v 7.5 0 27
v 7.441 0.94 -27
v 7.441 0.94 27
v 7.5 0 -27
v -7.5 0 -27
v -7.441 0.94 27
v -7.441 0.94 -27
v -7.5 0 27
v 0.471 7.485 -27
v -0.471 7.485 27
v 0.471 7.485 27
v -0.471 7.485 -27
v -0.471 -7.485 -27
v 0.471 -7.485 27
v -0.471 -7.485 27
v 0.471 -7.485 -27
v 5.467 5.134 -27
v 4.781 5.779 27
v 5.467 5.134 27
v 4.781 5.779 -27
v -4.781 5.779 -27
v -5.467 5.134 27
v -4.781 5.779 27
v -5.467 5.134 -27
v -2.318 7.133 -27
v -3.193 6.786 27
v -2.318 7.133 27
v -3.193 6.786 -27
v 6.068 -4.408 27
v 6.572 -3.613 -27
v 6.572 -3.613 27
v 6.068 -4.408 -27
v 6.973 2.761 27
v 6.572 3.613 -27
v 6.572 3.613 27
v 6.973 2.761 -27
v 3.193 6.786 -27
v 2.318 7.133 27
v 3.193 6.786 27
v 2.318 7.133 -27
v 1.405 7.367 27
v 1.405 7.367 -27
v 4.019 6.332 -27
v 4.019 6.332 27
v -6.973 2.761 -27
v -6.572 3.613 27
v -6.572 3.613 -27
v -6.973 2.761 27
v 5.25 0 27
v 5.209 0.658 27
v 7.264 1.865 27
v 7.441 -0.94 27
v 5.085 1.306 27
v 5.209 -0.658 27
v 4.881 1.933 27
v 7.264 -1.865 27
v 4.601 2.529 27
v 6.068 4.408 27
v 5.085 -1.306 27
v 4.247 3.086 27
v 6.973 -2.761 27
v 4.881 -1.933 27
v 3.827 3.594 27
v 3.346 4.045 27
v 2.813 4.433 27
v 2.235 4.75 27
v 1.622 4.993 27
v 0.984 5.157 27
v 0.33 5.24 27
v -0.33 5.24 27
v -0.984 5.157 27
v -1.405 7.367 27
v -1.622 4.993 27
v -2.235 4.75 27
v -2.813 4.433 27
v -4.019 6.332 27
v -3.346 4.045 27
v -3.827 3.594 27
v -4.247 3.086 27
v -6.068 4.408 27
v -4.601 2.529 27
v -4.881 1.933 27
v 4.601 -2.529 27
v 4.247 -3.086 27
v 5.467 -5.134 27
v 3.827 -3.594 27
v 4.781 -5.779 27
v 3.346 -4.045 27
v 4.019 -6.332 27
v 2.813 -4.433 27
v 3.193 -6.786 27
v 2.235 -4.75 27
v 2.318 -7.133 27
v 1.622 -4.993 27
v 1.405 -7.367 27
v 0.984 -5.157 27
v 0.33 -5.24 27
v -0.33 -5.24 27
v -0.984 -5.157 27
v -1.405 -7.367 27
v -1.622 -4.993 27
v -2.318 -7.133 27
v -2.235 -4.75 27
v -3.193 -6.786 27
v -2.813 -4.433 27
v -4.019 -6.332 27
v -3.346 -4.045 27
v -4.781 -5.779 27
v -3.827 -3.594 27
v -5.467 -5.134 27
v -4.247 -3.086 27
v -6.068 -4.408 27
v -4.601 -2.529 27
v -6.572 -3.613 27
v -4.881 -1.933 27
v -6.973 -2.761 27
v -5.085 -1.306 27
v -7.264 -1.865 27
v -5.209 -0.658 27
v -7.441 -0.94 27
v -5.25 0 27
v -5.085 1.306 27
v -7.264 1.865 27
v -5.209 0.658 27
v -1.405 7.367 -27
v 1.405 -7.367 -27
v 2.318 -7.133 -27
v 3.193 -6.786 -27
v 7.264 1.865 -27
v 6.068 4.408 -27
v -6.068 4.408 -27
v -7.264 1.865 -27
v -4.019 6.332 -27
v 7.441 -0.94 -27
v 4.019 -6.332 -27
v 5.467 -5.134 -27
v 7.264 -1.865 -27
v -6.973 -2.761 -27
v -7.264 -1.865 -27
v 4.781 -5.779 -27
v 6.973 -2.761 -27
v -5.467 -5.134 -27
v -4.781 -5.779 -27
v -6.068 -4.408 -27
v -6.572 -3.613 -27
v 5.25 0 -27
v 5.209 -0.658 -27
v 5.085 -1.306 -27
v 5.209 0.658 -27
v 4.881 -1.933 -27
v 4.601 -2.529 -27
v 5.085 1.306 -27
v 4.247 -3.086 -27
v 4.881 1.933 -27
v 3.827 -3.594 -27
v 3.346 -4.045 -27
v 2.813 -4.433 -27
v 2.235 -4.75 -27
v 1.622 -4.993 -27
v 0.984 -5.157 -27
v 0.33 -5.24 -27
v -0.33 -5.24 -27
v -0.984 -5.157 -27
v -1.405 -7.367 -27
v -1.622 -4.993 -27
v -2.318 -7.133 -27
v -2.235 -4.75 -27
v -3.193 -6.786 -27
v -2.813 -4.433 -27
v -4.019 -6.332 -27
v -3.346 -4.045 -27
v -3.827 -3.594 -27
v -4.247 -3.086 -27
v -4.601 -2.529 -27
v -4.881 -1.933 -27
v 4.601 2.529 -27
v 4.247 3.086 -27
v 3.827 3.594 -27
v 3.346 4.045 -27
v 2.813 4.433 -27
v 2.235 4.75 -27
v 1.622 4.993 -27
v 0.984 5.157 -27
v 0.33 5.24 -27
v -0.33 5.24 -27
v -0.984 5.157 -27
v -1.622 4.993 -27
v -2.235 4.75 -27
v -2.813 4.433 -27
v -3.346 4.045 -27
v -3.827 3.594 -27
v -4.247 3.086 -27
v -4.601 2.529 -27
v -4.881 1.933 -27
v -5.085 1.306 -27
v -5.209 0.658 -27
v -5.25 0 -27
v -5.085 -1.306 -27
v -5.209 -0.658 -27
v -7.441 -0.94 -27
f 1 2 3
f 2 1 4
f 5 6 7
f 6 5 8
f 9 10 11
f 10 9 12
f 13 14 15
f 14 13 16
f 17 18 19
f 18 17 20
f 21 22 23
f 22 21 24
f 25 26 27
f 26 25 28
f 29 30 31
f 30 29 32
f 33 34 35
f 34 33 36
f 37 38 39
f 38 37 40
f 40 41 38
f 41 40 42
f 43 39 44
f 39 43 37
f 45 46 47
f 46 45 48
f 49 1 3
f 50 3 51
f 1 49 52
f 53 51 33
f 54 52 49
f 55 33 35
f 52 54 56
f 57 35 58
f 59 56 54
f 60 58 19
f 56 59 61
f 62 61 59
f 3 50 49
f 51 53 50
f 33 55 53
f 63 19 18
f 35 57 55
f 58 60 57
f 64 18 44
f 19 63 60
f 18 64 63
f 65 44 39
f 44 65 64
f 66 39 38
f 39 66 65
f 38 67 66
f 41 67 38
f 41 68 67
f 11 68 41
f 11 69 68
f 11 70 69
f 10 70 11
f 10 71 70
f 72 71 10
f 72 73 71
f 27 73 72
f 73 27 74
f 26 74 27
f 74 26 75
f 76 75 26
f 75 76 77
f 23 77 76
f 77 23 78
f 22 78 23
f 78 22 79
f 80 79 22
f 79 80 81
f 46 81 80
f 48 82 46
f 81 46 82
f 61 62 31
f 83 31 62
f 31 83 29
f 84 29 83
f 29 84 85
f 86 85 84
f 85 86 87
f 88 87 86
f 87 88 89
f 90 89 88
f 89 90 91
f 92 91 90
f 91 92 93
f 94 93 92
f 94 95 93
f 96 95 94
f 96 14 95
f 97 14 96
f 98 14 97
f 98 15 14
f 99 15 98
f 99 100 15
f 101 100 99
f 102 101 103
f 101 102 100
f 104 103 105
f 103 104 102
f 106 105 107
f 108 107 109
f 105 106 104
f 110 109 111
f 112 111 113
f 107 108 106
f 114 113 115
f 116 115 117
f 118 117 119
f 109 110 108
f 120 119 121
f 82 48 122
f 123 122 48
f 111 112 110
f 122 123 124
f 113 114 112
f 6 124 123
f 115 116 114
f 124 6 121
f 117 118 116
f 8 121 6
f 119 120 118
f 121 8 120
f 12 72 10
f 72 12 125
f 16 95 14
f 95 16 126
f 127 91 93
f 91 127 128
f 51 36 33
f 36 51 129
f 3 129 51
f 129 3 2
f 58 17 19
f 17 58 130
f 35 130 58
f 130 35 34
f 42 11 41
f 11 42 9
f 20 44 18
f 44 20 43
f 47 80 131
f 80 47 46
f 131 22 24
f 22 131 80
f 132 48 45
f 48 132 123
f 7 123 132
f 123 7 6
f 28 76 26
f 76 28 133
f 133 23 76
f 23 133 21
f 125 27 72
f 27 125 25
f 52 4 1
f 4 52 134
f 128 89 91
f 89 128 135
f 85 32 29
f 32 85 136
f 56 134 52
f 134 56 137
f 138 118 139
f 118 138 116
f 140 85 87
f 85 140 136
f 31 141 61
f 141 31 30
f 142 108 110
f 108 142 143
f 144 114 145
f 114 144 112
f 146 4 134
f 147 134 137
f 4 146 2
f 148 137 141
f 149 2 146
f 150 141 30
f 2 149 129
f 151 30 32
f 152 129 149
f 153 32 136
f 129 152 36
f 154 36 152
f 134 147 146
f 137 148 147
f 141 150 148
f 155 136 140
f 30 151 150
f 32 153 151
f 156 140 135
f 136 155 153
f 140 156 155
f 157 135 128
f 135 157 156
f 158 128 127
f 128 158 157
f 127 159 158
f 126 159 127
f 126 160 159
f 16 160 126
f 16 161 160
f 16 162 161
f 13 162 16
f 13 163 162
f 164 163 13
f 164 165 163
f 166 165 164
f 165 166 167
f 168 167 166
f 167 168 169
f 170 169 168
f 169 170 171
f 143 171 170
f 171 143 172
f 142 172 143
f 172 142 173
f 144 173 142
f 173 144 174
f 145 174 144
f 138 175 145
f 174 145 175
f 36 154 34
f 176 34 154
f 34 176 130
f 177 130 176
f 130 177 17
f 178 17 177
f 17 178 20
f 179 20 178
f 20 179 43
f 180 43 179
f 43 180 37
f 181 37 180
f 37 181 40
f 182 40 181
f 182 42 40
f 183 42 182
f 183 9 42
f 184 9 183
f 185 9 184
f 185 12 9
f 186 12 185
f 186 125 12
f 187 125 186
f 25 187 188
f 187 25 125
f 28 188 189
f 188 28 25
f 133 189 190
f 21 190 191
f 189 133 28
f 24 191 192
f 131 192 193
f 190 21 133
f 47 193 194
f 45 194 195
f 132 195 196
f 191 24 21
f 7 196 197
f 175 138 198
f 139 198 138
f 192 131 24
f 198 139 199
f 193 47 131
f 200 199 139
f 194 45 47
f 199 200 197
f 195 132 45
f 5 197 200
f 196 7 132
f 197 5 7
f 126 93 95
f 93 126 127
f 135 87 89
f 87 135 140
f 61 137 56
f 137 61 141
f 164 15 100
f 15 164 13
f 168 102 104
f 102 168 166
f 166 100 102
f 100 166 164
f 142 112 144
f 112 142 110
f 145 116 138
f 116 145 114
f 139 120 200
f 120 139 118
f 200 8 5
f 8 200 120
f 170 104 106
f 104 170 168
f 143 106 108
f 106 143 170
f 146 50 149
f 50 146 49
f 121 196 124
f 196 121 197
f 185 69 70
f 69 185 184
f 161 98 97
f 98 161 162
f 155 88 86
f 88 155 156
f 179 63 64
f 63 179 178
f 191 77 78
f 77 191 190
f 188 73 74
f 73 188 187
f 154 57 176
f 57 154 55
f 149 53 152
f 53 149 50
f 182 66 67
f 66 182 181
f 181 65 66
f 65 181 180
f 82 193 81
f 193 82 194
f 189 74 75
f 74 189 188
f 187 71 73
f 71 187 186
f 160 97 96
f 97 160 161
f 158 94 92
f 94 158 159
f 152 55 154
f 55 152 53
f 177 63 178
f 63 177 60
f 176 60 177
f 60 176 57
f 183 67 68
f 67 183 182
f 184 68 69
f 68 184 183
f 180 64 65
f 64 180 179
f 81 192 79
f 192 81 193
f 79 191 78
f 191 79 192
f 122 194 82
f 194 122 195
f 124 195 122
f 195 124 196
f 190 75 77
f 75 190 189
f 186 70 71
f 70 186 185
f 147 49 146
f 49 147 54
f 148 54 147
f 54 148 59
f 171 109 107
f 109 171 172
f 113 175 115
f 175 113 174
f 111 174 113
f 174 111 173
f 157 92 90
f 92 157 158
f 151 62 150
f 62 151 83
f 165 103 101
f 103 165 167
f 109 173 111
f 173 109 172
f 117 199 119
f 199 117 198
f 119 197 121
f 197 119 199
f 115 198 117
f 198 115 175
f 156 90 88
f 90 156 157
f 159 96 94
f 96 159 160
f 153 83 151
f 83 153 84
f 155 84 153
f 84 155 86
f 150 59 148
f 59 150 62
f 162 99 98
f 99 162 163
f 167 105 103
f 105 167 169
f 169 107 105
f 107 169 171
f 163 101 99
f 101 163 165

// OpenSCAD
$fn = 50;


difference() {
	union() {
		translate(v = [0, 0, -27.0000000000]) {
			cylinder(h = 54, r = 7.5000000000);
		}
	}
	union() {
		translate(v = [0, 0, -100.0000000000]) {
			cylinder(h = 200, r = 5.2500000000);
		}
	}
}
